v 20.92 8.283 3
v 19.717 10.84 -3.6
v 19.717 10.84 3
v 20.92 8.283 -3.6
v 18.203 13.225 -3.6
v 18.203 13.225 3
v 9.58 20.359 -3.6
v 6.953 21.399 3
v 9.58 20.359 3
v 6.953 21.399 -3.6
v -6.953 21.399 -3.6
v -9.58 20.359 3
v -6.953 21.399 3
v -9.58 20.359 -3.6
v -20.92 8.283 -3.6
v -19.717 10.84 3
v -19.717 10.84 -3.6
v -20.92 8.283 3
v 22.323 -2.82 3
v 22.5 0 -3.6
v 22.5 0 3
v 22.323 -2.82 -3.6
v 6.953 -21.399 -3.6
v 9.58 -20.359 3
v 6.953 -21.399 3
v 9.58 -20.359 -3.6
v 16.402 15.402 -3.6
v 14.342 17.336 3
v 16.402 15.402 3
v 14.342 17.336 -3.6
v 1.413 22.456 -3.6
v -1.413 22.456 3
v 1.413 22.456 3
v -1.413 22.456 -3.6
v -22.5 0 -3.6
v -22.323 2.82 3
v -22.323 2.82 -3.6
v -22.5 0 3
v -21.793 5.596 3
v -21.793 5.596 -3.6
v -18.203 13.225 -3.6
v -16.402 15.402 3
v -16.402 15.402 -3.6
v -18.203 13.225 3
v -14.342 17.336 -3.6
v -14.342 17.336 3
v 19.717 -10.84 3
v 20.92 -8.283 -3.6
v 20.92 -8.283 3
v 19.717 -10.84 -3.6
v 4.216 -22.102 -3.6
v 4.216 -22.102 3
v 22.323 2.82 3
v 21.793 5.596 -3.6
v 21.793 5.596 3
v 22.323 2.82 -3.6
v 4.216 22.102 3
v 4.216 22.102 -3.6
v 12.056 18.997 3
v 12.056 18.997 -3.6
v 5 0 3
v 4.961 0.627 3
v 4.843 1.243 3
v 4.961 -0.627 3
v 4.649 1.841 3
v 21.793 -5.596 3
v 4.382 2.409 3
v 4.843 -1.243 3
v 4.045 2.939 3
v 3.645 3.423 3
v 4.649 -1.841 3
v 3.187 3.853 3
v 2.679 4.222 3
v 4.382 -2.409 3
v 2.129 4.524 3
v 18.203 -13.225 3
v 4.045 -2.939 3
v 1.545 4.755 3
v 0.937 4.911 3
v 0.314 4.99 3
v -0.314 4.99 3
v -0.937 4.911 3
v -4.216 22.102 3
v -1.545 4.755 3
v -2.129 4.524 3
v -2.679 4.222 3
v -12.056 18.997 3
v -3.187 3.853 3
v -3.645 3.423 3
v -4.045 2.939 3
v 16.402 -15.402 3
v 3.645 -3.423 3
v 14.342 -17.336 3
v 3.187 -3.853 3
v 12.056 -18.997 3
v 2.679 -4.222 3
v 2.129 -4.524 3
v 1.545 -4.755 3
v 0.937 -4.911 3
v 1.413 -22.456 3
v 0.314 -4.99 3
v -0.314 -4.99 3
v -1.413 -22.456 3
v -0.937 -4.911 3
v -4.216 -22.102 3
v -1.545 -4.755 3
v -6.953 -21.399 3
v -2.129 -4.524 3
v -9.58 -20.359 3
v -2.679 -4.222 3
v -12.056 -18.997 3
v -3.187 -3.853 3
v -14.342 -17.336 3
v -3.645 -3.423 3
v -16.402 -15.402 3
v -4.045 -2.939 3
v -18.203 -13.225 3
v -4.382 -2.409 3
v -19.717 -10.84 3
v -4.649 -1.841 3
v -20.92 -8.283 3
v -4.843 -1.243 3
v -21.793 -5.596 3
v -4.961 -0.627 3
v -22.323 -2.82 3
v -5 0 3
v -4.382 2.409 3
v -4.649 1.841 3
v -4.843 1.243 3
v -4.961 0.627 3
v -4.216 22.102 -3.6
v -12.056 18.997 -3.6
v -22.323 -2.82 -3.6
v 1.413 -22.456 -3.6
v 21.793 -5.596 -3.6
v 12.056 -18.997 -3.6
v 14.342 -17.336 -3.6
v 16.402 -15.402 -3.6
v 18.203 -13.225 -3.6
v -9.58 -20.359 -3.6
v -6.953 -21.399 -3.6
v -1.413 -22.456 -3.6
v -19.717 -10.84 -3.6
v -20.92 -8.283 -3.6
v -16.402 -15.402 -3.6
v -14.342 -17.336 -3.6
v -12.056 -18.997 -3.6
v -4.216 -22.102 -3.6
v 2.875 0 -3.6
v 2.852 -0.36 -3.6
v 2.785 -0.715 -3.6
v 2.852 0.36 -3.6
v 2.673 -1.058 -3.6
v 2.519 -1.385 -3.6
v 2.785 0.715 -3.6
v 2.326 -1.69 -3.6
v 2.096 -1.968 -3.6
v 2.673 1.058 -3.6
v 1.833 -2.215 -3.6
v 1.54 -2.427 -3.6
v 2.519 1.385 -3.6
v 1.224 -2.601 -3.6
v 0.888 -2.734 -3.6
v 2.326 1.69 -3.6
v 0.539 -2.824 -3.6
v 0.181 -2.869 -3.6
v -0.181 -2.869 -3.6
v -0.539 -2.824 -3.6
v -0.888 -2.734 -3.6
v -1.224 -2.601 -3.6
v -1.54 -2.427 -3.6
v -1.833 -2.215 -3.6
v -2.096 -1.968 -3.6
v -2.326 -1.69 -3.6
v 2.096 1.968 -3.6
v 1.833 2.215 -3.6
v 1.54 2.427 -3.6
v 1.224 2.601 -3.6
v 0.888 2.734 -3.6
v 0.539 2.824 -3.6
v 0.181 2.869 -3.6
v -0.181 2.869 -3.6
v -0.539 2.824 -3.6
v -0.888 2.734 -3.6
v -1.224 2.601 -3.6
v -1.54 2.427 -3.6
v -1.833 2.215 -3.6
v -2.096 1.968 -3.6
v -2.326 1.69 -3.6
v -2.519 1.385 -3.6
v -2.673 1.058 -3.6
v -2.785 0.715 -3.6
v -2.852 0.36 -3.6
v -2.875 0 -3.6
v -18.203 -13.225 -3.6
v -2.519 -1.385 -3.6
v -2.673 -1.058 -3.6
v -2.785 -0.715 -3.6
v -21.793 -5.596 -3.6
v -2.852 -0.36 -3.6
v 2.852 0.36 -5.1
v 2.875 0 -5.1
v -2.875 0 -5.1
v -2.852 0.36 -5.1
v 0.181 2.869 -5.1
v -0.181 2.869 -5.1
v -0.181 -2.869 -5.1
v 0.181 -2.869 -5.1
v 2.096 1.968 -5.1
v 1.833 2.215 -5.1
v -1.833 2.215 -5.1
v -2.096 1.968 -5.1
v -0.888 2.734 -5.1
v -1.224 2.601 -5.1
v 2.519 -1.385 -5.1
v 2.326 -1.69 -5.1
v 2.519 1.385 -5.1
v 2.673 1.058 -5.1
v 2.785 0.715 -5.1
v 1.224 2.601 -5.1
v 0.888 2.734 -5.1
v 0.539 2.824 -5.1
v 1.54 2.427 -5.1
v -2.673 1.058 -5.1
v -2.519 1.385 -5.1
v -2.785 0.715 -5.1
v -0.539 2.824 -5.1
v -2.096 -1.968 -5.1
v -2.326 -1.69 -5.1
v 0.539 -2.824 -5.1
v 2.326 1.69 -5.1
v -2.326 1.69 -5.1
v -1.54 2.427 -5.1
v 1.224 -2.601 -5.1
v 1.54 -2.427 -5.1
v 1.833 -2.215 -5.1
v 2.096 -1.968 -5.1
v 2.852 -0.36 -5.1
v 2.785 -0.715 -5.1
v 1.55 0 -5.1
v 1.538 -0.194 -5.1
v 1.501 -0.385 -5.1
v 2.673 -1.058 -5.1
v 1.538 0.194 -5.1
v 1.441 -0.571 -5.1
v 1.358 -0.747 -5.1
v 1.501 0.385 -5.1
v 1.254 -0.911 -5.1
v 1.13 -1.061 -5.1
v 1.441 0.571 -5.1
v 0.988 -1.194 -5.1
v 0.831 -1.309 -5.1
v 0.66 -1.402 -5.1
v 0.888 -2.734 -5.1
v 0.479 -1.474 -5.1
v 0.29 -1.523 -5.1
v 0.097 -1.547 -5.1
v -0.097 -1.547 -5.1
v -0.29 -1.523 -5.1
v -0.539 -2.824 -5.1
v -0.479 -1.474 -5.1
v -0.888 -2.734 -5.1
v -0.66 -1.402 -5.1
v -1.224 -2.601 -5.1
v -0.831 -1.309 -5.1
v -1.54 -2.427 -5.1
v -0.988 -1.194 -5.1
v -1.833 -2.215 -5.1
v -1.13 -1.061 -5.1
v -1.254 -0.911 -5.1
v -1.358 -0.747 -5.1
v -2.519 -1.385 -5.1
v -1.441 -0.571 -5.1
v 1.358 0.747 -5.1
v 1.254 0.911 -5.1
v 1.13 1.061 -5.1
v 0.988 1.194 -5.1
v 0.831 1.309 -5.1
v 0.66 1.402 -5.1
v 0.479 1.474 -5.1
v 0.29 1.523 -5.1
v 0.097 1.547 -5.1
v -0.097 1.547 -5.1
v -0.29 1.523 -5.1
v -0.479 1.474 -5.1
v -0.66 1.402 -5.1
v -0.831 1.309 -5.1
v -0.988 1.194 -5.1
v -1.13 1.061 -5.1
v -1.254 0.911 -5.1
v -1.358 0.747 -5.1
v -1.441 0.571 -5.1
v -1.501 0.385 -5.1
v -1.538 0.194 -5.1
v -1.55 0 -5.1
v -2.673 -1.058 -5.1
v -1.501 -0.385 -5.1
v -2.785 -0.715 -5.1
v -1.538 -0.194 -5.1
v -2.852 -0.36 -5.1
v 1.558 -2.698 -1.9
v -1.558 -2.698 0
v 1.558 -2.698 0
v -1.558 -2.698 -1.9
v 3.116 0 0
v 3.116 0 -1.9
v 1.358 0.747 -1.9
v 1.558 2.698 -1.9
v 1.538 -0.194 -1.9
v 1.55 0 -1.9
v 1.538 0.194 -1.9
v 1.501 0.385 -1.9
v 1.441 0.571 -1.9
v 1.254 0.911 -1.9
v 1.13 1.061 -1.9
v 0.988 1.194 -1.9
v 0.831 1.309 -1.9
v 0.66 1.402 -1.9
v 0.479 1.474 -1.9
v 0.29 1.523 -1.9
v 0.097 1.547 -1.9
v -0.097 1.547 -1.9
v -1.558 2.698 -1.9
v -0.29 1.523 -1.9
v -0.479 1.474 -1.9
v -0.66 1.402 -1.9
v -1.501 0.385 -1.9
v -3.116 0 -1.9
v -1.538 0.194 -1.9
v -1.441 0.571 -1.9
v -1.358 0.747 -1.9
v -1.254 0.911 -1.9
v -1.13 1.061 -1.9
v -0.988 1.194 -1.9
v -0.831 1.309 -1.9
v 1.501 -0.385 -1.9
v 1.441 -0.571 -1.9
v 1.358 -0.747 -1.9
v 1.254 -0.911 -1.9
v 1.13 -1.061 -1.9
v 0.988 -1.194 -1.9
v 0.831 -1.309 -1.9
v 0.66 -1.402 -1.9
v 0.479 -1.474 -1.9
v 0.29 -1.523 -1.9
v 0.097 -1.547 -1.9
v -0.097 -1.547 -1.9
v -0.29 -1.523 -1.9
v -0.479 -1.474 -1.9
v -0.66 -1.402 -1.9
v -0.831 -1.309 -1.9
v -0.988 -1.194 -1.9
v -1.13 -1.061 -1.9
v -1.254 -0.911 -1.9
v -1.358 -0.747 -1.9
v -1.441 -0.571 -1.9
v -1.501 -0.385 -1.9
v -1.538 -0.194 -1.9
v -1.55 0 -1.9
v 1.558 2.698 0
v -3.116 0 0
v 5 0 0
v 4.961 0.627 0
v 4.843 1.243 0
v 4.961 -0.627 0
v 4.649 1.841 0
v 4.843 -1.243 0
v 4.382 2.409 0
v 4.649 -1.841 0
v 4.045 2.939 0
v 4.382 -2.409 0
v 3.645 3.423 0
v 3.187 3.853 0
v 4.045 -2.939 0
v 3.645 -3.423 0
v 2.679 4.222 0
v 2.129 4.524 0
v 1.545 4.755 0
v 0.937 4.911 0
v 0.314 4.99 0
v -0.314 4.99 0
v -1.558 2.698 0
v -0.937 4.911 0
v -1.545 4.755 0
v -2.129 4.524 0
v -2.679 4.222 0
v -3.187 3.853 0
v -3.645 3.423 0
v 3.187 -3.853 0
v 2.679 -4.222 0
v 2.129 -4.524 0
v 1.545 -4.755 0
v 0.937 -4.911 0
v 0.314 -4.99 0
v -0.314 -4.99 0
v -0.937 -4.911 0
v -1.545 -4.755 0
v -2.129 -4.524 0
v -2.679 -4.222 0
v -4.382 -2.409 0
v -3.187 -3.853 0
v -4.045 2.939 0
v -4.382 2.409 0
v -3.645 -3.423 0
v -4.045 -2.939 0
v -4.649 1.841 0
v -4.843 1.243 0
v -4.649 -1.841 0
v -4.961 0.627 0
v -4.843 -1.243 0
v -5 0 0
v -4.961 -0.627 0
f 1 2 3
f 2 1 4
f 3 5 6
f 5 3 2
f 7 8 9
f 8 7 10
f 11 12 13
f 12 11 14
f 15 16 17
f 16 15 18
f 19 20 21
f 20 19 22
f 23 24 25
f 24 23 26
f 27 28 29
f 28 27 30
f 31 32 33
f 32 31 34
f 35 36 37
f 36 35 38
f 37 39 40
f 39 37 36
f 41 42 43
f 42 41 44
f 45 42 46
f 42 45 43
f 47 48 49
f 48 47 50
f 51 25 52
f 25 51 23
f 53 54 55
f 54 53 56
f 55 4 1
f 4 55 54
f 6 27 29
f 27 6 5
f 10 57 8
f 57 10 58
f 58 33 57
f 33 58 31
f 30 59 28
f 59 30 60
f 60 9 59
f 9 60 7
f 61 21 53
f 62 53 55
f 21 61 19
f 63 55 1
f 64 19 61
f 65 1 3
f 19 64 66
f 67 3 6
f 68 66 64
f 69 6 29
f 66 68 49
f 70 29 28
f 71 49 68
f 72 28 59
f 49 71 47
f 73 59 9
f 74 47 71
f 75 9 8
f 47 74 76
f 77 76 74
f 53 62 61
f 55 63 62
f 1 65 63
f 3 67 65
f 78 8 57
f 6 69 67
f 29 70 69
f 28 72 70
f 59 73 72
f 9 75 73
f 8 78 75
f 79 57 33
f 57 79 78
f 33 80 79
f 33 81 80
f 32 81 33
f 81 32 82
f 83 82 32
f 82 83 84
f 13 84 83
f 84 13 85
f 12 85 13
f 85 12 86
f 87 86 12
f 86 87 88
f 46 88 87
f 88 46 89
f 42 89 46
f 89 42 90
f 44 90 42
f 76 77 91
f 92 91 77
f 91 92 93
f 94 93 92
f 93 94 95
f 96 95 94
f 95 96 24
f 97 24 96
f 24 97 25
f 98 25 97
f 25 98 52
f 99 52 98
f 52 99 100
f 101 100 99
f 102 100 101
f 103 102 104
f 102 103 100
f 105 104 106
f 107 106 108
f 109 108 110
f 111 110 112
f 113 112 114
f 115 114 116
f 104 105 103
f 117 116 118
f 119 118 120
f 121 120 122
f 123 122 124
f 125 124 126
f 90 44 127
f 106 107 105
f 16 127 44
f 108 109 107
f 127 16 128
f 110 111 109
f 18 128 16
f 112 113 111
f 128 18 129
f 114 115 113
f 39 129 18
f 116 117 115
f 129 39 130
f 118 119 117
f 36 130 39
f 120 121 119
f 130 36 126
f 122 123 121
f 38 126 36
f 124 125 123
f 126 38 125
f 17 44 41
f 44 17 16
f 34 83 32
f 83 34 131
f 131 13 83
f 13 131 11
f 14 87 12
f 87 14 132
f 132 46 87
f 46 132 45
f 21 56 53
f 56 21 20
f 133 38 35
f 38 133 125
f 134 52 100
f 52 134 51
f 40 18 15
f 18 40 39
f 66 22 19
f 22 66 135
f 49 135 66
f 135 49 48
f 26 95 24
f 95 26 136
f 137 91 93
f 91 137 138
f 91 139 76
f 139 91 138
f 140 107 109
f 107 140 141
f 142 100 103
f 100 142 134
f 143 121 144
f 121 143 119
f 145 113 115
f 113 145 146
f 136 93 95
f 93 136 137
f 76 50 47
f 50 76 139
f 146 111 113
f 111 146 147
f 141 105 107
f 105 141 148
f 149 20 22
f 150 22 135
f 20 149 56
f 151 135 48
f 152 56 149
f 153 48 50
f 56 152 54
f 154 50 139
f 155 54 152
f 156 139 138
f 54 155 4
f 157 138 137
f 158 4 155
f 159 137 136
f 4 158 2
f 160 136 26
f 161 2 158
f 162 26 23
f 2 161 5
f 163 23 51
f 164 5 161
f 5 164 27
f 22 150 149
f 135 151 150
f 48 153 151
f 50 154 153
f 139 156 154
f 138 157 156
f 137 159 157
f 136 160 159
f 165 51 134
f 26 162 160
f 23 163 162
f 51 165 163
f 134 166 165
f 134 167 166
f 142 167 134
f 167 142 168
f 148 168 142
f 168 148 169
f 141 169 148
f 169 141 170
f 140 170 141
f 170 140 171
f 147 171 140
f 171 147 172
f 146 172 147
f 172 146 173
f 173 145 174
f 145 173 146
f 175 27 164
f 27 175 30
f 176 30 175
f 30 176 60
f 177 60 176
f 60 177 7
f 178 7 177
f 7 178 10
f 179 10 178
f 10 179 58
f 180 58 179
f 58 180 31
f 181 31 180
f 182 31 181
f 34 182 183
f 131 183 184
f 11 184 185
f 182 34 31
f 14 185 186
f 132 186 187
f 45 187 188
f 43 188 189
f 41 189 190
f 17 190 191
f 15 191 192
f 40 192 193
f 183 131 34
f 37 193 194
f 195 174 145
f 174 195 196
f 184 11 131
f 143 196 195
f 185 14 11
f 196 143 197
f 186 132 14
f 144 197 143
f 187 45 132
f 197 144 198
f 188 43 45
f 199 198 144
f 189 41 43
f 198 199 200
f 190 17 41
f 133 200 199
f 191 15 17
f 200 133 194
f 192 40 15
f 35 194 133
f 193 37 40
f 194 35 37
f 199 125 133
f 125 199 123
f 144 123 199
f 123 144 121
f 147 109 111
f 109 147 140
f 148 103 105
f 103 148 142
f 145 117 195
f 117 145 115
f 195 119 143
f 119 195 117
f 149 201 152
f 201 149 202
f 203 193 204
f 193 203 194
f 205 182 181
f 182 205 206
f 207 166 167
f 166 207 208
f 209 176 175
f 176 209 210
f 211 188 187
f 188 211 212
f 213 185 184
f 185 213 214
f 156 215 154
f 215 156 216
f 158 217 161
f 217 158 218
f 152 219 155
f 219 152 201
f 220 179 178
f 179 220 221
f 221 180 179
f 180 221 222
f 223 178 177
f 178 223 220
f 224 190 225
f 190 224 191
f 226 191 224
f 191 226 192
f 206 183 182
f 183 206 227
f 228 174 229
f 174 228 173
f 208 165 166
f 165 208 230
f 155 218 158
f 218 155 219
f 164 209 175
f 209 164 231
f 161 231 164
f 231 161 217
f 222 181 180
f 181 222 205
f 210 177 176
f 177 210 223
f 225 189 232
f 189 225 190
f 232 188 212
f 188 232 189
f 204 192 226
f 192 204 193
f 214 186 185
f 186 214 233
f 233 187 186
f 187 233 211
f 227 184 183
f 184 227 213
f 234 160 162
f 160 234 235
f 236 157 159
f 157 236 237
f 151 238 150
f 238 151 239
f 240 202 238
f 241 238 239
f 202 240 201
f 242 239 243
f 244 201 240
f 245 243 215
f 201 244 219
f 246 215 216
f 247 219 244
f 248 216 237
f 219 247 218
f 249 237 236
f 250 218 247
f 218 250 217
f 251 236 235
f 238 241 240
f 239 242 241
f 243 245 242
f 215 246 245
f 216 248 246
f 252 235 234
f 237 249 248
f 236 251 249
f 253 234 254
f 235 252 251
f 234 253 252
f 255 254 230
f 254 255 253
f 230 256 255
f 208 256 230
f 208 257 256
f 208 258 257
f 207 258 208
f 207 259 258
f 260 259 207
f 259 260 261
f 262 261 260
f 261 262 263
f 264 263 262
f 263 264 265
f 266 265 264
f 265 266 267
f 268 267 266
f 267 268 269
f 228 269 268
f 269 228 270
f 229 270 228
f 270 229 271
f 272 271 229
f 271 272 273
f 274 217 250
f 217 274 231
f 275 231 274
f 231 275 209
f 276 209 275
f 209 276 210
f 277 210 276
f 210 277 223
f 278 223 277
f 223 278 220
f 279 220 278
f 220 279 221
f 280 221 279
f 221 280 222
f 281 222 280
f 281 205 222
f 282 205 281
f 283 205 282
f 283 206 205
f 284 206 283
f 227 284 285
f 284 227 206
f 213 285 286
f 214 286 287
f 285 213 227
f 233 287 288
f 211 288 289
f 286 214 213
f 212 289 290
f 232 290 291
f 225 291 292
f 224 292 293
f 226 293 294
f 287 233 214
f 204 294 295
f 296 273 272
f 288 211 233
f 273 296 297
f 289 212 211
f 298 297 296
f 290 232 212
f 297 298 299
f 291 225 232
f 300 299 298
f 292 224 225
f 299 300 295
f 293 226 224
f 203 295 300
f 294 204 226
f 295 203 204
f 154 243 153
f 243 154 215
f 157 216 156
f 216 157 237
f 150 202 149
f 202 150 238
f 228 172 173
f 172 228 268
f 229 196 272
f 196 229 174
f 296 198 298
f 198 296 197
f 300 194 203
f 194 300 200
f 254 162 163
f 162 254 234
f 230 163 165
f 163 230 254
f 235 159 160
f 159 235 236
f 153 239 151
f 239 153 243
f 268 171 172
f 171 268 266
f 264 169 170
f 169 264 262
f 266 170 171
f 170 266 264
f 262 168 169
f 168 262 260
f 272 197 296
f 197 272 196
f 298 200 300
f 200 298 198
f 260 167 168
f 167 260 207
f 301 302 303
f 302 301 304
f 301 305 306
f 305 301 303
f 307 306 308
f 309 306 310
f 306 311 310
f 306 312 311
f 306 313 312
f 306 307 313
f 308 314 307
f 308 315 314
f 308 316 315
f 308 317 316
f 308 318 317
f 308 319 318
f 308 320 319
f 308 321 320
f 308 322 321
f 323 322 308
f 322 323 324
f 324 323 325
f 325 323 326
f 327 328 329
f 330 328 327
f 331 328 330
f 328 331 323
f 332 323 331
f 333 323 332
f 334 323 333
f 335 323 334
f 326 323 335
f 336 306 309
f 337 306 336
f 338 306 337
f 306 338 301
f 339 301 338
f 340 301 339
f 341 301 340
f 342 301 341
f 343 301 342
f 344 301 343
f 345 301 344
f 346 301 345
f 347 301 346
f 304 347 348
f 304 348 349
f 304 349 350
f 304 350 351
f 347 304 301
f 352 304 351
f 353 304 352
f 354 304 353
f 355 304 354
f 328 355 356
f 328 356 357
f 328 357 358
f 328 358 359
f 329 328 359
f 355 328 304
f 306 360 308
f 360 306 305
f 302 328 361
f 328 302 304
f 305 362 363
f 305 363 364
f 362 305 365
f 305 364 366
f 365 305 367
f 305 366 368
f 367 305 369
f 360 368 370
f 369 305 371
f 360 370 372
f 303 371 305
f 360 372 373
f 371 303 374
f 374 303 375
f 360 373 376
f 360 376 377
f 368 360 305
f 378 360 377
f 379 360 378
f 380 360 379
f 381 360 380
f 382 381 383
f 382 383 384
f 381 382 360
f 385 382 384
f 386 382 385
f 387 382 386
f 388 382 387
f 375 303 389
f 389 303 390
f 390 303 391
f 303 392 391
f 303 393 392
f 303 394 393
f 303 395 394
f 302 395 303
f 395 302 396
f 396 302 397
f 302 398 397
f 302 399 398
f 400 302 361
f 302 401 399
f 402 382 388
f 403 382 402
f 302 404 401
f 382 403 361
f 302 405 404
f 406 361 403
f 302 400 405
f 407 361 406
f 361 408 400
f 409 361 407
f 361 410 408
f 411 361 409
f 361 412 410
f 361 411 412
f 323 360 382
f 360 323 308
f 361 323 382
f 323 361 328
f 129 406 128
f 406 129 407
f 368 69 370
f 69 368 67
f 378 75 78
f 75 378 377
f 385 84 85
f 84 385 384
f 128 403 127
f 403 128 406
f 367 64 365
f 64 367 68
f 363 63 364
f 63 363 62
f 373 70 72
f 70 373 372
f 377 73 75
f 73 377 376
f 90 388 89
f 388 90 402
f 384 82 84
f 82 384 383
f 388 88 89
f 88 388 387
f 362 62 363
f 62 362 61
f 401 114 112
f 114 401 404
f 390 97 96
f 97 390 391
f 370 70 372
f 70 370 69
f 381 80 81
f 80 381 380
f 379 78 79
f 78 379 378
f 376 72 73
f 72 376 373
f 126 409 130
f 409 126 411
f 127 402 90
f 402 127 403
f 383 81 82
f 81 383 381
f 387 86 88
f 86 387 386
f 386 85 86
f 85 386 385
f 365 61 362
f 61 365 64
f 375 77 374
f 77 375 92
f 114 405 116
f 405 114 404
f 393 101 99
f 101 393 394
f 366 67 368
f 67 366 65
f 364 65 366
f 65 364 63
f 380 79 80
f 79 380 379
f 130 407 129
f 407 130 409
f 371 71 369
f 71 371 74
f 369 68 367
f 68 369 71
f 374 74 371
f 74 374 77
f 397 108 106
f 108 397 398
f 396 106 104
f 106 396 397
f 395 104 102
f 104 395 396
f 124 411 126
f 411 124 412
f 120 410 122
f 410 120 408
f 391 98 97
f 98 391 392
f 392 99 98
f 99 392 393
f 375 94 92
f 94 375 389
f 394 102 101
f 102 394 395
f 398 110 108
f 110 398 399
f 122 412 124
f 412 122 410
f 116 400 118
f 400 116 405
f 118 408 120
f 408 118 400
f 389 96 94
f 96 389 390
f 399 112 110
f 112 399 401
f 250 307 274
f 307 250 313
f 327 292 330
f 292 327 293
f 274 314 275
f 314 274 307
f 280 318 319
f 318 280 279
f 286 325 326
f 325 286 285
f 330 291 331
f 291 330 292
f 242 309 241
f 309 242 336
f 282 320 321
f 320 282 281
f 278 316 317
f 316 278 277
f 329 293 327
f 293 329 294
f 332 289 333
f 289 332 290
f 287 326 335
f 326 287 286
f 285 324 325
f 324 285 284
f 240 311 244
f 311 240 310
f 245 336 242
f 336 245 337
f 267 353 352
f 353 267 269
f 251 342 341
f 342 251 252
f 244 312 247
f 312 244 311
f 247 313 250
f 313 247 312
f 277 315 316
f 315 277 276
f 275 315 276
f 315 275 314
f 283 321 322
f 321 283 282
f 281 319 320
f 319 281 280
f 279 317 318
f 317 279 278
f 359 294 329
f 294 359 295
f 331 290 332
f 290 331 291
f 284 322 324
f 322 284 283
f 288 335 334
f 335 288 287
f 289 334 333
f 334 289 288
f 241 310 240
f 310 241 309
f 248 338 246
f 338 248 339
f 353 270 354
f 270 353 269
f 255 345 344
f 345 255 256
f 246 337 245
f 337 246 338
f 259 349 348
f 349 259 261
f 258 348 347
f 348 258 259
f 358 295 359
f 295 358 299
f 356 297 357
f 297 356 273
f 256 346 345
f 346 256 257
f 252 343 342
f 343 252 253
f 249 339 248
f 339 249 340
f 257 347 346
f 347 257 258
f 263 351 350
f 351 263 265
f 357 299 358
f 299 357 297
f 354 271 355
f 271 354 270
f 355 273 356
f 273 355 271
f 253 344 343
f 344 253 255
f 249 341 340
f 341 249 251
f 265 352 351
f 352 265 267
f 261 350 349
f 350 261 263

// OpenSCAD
$fn = 50;

difference() {
	union() {
		translate(v = [0, 0, -3.5999999999999996]) {
			cylinder(h = 6.6, r = 22.5);
		}
		#translate(v = [0, 0, -5.1]) {
			cylinder(h = 5.1, r = 2.875);
		}
	}
	union() {
		translate(v = [0, 0, 0]) {
			rotate(a = [0, 0, 0]) {
				difference() {
					union() {
						translate(v = [0, 0, -1.9]) {
							linear_extrude(height = 1.9) {
								polygon(points = [[3.1158, 0.0], [1.5579000000000005, 2.698361953111554], [-1.5578999999999994, 2.6983619531115544], [-3.1158, 3.815754496783323e-16], [-1.5579000000000014, -2.6983619531115535], [1.557899999999998, -2.6983619531115552]]);
							}
						}
					}
					union();
				}
			}
		}
		#cylinder(h = 3, r = 5.0);
		#translate(v = [0, 0, -100.0]) {
			cylinder(h = 200, r = 1.55);
		}
	}
}
